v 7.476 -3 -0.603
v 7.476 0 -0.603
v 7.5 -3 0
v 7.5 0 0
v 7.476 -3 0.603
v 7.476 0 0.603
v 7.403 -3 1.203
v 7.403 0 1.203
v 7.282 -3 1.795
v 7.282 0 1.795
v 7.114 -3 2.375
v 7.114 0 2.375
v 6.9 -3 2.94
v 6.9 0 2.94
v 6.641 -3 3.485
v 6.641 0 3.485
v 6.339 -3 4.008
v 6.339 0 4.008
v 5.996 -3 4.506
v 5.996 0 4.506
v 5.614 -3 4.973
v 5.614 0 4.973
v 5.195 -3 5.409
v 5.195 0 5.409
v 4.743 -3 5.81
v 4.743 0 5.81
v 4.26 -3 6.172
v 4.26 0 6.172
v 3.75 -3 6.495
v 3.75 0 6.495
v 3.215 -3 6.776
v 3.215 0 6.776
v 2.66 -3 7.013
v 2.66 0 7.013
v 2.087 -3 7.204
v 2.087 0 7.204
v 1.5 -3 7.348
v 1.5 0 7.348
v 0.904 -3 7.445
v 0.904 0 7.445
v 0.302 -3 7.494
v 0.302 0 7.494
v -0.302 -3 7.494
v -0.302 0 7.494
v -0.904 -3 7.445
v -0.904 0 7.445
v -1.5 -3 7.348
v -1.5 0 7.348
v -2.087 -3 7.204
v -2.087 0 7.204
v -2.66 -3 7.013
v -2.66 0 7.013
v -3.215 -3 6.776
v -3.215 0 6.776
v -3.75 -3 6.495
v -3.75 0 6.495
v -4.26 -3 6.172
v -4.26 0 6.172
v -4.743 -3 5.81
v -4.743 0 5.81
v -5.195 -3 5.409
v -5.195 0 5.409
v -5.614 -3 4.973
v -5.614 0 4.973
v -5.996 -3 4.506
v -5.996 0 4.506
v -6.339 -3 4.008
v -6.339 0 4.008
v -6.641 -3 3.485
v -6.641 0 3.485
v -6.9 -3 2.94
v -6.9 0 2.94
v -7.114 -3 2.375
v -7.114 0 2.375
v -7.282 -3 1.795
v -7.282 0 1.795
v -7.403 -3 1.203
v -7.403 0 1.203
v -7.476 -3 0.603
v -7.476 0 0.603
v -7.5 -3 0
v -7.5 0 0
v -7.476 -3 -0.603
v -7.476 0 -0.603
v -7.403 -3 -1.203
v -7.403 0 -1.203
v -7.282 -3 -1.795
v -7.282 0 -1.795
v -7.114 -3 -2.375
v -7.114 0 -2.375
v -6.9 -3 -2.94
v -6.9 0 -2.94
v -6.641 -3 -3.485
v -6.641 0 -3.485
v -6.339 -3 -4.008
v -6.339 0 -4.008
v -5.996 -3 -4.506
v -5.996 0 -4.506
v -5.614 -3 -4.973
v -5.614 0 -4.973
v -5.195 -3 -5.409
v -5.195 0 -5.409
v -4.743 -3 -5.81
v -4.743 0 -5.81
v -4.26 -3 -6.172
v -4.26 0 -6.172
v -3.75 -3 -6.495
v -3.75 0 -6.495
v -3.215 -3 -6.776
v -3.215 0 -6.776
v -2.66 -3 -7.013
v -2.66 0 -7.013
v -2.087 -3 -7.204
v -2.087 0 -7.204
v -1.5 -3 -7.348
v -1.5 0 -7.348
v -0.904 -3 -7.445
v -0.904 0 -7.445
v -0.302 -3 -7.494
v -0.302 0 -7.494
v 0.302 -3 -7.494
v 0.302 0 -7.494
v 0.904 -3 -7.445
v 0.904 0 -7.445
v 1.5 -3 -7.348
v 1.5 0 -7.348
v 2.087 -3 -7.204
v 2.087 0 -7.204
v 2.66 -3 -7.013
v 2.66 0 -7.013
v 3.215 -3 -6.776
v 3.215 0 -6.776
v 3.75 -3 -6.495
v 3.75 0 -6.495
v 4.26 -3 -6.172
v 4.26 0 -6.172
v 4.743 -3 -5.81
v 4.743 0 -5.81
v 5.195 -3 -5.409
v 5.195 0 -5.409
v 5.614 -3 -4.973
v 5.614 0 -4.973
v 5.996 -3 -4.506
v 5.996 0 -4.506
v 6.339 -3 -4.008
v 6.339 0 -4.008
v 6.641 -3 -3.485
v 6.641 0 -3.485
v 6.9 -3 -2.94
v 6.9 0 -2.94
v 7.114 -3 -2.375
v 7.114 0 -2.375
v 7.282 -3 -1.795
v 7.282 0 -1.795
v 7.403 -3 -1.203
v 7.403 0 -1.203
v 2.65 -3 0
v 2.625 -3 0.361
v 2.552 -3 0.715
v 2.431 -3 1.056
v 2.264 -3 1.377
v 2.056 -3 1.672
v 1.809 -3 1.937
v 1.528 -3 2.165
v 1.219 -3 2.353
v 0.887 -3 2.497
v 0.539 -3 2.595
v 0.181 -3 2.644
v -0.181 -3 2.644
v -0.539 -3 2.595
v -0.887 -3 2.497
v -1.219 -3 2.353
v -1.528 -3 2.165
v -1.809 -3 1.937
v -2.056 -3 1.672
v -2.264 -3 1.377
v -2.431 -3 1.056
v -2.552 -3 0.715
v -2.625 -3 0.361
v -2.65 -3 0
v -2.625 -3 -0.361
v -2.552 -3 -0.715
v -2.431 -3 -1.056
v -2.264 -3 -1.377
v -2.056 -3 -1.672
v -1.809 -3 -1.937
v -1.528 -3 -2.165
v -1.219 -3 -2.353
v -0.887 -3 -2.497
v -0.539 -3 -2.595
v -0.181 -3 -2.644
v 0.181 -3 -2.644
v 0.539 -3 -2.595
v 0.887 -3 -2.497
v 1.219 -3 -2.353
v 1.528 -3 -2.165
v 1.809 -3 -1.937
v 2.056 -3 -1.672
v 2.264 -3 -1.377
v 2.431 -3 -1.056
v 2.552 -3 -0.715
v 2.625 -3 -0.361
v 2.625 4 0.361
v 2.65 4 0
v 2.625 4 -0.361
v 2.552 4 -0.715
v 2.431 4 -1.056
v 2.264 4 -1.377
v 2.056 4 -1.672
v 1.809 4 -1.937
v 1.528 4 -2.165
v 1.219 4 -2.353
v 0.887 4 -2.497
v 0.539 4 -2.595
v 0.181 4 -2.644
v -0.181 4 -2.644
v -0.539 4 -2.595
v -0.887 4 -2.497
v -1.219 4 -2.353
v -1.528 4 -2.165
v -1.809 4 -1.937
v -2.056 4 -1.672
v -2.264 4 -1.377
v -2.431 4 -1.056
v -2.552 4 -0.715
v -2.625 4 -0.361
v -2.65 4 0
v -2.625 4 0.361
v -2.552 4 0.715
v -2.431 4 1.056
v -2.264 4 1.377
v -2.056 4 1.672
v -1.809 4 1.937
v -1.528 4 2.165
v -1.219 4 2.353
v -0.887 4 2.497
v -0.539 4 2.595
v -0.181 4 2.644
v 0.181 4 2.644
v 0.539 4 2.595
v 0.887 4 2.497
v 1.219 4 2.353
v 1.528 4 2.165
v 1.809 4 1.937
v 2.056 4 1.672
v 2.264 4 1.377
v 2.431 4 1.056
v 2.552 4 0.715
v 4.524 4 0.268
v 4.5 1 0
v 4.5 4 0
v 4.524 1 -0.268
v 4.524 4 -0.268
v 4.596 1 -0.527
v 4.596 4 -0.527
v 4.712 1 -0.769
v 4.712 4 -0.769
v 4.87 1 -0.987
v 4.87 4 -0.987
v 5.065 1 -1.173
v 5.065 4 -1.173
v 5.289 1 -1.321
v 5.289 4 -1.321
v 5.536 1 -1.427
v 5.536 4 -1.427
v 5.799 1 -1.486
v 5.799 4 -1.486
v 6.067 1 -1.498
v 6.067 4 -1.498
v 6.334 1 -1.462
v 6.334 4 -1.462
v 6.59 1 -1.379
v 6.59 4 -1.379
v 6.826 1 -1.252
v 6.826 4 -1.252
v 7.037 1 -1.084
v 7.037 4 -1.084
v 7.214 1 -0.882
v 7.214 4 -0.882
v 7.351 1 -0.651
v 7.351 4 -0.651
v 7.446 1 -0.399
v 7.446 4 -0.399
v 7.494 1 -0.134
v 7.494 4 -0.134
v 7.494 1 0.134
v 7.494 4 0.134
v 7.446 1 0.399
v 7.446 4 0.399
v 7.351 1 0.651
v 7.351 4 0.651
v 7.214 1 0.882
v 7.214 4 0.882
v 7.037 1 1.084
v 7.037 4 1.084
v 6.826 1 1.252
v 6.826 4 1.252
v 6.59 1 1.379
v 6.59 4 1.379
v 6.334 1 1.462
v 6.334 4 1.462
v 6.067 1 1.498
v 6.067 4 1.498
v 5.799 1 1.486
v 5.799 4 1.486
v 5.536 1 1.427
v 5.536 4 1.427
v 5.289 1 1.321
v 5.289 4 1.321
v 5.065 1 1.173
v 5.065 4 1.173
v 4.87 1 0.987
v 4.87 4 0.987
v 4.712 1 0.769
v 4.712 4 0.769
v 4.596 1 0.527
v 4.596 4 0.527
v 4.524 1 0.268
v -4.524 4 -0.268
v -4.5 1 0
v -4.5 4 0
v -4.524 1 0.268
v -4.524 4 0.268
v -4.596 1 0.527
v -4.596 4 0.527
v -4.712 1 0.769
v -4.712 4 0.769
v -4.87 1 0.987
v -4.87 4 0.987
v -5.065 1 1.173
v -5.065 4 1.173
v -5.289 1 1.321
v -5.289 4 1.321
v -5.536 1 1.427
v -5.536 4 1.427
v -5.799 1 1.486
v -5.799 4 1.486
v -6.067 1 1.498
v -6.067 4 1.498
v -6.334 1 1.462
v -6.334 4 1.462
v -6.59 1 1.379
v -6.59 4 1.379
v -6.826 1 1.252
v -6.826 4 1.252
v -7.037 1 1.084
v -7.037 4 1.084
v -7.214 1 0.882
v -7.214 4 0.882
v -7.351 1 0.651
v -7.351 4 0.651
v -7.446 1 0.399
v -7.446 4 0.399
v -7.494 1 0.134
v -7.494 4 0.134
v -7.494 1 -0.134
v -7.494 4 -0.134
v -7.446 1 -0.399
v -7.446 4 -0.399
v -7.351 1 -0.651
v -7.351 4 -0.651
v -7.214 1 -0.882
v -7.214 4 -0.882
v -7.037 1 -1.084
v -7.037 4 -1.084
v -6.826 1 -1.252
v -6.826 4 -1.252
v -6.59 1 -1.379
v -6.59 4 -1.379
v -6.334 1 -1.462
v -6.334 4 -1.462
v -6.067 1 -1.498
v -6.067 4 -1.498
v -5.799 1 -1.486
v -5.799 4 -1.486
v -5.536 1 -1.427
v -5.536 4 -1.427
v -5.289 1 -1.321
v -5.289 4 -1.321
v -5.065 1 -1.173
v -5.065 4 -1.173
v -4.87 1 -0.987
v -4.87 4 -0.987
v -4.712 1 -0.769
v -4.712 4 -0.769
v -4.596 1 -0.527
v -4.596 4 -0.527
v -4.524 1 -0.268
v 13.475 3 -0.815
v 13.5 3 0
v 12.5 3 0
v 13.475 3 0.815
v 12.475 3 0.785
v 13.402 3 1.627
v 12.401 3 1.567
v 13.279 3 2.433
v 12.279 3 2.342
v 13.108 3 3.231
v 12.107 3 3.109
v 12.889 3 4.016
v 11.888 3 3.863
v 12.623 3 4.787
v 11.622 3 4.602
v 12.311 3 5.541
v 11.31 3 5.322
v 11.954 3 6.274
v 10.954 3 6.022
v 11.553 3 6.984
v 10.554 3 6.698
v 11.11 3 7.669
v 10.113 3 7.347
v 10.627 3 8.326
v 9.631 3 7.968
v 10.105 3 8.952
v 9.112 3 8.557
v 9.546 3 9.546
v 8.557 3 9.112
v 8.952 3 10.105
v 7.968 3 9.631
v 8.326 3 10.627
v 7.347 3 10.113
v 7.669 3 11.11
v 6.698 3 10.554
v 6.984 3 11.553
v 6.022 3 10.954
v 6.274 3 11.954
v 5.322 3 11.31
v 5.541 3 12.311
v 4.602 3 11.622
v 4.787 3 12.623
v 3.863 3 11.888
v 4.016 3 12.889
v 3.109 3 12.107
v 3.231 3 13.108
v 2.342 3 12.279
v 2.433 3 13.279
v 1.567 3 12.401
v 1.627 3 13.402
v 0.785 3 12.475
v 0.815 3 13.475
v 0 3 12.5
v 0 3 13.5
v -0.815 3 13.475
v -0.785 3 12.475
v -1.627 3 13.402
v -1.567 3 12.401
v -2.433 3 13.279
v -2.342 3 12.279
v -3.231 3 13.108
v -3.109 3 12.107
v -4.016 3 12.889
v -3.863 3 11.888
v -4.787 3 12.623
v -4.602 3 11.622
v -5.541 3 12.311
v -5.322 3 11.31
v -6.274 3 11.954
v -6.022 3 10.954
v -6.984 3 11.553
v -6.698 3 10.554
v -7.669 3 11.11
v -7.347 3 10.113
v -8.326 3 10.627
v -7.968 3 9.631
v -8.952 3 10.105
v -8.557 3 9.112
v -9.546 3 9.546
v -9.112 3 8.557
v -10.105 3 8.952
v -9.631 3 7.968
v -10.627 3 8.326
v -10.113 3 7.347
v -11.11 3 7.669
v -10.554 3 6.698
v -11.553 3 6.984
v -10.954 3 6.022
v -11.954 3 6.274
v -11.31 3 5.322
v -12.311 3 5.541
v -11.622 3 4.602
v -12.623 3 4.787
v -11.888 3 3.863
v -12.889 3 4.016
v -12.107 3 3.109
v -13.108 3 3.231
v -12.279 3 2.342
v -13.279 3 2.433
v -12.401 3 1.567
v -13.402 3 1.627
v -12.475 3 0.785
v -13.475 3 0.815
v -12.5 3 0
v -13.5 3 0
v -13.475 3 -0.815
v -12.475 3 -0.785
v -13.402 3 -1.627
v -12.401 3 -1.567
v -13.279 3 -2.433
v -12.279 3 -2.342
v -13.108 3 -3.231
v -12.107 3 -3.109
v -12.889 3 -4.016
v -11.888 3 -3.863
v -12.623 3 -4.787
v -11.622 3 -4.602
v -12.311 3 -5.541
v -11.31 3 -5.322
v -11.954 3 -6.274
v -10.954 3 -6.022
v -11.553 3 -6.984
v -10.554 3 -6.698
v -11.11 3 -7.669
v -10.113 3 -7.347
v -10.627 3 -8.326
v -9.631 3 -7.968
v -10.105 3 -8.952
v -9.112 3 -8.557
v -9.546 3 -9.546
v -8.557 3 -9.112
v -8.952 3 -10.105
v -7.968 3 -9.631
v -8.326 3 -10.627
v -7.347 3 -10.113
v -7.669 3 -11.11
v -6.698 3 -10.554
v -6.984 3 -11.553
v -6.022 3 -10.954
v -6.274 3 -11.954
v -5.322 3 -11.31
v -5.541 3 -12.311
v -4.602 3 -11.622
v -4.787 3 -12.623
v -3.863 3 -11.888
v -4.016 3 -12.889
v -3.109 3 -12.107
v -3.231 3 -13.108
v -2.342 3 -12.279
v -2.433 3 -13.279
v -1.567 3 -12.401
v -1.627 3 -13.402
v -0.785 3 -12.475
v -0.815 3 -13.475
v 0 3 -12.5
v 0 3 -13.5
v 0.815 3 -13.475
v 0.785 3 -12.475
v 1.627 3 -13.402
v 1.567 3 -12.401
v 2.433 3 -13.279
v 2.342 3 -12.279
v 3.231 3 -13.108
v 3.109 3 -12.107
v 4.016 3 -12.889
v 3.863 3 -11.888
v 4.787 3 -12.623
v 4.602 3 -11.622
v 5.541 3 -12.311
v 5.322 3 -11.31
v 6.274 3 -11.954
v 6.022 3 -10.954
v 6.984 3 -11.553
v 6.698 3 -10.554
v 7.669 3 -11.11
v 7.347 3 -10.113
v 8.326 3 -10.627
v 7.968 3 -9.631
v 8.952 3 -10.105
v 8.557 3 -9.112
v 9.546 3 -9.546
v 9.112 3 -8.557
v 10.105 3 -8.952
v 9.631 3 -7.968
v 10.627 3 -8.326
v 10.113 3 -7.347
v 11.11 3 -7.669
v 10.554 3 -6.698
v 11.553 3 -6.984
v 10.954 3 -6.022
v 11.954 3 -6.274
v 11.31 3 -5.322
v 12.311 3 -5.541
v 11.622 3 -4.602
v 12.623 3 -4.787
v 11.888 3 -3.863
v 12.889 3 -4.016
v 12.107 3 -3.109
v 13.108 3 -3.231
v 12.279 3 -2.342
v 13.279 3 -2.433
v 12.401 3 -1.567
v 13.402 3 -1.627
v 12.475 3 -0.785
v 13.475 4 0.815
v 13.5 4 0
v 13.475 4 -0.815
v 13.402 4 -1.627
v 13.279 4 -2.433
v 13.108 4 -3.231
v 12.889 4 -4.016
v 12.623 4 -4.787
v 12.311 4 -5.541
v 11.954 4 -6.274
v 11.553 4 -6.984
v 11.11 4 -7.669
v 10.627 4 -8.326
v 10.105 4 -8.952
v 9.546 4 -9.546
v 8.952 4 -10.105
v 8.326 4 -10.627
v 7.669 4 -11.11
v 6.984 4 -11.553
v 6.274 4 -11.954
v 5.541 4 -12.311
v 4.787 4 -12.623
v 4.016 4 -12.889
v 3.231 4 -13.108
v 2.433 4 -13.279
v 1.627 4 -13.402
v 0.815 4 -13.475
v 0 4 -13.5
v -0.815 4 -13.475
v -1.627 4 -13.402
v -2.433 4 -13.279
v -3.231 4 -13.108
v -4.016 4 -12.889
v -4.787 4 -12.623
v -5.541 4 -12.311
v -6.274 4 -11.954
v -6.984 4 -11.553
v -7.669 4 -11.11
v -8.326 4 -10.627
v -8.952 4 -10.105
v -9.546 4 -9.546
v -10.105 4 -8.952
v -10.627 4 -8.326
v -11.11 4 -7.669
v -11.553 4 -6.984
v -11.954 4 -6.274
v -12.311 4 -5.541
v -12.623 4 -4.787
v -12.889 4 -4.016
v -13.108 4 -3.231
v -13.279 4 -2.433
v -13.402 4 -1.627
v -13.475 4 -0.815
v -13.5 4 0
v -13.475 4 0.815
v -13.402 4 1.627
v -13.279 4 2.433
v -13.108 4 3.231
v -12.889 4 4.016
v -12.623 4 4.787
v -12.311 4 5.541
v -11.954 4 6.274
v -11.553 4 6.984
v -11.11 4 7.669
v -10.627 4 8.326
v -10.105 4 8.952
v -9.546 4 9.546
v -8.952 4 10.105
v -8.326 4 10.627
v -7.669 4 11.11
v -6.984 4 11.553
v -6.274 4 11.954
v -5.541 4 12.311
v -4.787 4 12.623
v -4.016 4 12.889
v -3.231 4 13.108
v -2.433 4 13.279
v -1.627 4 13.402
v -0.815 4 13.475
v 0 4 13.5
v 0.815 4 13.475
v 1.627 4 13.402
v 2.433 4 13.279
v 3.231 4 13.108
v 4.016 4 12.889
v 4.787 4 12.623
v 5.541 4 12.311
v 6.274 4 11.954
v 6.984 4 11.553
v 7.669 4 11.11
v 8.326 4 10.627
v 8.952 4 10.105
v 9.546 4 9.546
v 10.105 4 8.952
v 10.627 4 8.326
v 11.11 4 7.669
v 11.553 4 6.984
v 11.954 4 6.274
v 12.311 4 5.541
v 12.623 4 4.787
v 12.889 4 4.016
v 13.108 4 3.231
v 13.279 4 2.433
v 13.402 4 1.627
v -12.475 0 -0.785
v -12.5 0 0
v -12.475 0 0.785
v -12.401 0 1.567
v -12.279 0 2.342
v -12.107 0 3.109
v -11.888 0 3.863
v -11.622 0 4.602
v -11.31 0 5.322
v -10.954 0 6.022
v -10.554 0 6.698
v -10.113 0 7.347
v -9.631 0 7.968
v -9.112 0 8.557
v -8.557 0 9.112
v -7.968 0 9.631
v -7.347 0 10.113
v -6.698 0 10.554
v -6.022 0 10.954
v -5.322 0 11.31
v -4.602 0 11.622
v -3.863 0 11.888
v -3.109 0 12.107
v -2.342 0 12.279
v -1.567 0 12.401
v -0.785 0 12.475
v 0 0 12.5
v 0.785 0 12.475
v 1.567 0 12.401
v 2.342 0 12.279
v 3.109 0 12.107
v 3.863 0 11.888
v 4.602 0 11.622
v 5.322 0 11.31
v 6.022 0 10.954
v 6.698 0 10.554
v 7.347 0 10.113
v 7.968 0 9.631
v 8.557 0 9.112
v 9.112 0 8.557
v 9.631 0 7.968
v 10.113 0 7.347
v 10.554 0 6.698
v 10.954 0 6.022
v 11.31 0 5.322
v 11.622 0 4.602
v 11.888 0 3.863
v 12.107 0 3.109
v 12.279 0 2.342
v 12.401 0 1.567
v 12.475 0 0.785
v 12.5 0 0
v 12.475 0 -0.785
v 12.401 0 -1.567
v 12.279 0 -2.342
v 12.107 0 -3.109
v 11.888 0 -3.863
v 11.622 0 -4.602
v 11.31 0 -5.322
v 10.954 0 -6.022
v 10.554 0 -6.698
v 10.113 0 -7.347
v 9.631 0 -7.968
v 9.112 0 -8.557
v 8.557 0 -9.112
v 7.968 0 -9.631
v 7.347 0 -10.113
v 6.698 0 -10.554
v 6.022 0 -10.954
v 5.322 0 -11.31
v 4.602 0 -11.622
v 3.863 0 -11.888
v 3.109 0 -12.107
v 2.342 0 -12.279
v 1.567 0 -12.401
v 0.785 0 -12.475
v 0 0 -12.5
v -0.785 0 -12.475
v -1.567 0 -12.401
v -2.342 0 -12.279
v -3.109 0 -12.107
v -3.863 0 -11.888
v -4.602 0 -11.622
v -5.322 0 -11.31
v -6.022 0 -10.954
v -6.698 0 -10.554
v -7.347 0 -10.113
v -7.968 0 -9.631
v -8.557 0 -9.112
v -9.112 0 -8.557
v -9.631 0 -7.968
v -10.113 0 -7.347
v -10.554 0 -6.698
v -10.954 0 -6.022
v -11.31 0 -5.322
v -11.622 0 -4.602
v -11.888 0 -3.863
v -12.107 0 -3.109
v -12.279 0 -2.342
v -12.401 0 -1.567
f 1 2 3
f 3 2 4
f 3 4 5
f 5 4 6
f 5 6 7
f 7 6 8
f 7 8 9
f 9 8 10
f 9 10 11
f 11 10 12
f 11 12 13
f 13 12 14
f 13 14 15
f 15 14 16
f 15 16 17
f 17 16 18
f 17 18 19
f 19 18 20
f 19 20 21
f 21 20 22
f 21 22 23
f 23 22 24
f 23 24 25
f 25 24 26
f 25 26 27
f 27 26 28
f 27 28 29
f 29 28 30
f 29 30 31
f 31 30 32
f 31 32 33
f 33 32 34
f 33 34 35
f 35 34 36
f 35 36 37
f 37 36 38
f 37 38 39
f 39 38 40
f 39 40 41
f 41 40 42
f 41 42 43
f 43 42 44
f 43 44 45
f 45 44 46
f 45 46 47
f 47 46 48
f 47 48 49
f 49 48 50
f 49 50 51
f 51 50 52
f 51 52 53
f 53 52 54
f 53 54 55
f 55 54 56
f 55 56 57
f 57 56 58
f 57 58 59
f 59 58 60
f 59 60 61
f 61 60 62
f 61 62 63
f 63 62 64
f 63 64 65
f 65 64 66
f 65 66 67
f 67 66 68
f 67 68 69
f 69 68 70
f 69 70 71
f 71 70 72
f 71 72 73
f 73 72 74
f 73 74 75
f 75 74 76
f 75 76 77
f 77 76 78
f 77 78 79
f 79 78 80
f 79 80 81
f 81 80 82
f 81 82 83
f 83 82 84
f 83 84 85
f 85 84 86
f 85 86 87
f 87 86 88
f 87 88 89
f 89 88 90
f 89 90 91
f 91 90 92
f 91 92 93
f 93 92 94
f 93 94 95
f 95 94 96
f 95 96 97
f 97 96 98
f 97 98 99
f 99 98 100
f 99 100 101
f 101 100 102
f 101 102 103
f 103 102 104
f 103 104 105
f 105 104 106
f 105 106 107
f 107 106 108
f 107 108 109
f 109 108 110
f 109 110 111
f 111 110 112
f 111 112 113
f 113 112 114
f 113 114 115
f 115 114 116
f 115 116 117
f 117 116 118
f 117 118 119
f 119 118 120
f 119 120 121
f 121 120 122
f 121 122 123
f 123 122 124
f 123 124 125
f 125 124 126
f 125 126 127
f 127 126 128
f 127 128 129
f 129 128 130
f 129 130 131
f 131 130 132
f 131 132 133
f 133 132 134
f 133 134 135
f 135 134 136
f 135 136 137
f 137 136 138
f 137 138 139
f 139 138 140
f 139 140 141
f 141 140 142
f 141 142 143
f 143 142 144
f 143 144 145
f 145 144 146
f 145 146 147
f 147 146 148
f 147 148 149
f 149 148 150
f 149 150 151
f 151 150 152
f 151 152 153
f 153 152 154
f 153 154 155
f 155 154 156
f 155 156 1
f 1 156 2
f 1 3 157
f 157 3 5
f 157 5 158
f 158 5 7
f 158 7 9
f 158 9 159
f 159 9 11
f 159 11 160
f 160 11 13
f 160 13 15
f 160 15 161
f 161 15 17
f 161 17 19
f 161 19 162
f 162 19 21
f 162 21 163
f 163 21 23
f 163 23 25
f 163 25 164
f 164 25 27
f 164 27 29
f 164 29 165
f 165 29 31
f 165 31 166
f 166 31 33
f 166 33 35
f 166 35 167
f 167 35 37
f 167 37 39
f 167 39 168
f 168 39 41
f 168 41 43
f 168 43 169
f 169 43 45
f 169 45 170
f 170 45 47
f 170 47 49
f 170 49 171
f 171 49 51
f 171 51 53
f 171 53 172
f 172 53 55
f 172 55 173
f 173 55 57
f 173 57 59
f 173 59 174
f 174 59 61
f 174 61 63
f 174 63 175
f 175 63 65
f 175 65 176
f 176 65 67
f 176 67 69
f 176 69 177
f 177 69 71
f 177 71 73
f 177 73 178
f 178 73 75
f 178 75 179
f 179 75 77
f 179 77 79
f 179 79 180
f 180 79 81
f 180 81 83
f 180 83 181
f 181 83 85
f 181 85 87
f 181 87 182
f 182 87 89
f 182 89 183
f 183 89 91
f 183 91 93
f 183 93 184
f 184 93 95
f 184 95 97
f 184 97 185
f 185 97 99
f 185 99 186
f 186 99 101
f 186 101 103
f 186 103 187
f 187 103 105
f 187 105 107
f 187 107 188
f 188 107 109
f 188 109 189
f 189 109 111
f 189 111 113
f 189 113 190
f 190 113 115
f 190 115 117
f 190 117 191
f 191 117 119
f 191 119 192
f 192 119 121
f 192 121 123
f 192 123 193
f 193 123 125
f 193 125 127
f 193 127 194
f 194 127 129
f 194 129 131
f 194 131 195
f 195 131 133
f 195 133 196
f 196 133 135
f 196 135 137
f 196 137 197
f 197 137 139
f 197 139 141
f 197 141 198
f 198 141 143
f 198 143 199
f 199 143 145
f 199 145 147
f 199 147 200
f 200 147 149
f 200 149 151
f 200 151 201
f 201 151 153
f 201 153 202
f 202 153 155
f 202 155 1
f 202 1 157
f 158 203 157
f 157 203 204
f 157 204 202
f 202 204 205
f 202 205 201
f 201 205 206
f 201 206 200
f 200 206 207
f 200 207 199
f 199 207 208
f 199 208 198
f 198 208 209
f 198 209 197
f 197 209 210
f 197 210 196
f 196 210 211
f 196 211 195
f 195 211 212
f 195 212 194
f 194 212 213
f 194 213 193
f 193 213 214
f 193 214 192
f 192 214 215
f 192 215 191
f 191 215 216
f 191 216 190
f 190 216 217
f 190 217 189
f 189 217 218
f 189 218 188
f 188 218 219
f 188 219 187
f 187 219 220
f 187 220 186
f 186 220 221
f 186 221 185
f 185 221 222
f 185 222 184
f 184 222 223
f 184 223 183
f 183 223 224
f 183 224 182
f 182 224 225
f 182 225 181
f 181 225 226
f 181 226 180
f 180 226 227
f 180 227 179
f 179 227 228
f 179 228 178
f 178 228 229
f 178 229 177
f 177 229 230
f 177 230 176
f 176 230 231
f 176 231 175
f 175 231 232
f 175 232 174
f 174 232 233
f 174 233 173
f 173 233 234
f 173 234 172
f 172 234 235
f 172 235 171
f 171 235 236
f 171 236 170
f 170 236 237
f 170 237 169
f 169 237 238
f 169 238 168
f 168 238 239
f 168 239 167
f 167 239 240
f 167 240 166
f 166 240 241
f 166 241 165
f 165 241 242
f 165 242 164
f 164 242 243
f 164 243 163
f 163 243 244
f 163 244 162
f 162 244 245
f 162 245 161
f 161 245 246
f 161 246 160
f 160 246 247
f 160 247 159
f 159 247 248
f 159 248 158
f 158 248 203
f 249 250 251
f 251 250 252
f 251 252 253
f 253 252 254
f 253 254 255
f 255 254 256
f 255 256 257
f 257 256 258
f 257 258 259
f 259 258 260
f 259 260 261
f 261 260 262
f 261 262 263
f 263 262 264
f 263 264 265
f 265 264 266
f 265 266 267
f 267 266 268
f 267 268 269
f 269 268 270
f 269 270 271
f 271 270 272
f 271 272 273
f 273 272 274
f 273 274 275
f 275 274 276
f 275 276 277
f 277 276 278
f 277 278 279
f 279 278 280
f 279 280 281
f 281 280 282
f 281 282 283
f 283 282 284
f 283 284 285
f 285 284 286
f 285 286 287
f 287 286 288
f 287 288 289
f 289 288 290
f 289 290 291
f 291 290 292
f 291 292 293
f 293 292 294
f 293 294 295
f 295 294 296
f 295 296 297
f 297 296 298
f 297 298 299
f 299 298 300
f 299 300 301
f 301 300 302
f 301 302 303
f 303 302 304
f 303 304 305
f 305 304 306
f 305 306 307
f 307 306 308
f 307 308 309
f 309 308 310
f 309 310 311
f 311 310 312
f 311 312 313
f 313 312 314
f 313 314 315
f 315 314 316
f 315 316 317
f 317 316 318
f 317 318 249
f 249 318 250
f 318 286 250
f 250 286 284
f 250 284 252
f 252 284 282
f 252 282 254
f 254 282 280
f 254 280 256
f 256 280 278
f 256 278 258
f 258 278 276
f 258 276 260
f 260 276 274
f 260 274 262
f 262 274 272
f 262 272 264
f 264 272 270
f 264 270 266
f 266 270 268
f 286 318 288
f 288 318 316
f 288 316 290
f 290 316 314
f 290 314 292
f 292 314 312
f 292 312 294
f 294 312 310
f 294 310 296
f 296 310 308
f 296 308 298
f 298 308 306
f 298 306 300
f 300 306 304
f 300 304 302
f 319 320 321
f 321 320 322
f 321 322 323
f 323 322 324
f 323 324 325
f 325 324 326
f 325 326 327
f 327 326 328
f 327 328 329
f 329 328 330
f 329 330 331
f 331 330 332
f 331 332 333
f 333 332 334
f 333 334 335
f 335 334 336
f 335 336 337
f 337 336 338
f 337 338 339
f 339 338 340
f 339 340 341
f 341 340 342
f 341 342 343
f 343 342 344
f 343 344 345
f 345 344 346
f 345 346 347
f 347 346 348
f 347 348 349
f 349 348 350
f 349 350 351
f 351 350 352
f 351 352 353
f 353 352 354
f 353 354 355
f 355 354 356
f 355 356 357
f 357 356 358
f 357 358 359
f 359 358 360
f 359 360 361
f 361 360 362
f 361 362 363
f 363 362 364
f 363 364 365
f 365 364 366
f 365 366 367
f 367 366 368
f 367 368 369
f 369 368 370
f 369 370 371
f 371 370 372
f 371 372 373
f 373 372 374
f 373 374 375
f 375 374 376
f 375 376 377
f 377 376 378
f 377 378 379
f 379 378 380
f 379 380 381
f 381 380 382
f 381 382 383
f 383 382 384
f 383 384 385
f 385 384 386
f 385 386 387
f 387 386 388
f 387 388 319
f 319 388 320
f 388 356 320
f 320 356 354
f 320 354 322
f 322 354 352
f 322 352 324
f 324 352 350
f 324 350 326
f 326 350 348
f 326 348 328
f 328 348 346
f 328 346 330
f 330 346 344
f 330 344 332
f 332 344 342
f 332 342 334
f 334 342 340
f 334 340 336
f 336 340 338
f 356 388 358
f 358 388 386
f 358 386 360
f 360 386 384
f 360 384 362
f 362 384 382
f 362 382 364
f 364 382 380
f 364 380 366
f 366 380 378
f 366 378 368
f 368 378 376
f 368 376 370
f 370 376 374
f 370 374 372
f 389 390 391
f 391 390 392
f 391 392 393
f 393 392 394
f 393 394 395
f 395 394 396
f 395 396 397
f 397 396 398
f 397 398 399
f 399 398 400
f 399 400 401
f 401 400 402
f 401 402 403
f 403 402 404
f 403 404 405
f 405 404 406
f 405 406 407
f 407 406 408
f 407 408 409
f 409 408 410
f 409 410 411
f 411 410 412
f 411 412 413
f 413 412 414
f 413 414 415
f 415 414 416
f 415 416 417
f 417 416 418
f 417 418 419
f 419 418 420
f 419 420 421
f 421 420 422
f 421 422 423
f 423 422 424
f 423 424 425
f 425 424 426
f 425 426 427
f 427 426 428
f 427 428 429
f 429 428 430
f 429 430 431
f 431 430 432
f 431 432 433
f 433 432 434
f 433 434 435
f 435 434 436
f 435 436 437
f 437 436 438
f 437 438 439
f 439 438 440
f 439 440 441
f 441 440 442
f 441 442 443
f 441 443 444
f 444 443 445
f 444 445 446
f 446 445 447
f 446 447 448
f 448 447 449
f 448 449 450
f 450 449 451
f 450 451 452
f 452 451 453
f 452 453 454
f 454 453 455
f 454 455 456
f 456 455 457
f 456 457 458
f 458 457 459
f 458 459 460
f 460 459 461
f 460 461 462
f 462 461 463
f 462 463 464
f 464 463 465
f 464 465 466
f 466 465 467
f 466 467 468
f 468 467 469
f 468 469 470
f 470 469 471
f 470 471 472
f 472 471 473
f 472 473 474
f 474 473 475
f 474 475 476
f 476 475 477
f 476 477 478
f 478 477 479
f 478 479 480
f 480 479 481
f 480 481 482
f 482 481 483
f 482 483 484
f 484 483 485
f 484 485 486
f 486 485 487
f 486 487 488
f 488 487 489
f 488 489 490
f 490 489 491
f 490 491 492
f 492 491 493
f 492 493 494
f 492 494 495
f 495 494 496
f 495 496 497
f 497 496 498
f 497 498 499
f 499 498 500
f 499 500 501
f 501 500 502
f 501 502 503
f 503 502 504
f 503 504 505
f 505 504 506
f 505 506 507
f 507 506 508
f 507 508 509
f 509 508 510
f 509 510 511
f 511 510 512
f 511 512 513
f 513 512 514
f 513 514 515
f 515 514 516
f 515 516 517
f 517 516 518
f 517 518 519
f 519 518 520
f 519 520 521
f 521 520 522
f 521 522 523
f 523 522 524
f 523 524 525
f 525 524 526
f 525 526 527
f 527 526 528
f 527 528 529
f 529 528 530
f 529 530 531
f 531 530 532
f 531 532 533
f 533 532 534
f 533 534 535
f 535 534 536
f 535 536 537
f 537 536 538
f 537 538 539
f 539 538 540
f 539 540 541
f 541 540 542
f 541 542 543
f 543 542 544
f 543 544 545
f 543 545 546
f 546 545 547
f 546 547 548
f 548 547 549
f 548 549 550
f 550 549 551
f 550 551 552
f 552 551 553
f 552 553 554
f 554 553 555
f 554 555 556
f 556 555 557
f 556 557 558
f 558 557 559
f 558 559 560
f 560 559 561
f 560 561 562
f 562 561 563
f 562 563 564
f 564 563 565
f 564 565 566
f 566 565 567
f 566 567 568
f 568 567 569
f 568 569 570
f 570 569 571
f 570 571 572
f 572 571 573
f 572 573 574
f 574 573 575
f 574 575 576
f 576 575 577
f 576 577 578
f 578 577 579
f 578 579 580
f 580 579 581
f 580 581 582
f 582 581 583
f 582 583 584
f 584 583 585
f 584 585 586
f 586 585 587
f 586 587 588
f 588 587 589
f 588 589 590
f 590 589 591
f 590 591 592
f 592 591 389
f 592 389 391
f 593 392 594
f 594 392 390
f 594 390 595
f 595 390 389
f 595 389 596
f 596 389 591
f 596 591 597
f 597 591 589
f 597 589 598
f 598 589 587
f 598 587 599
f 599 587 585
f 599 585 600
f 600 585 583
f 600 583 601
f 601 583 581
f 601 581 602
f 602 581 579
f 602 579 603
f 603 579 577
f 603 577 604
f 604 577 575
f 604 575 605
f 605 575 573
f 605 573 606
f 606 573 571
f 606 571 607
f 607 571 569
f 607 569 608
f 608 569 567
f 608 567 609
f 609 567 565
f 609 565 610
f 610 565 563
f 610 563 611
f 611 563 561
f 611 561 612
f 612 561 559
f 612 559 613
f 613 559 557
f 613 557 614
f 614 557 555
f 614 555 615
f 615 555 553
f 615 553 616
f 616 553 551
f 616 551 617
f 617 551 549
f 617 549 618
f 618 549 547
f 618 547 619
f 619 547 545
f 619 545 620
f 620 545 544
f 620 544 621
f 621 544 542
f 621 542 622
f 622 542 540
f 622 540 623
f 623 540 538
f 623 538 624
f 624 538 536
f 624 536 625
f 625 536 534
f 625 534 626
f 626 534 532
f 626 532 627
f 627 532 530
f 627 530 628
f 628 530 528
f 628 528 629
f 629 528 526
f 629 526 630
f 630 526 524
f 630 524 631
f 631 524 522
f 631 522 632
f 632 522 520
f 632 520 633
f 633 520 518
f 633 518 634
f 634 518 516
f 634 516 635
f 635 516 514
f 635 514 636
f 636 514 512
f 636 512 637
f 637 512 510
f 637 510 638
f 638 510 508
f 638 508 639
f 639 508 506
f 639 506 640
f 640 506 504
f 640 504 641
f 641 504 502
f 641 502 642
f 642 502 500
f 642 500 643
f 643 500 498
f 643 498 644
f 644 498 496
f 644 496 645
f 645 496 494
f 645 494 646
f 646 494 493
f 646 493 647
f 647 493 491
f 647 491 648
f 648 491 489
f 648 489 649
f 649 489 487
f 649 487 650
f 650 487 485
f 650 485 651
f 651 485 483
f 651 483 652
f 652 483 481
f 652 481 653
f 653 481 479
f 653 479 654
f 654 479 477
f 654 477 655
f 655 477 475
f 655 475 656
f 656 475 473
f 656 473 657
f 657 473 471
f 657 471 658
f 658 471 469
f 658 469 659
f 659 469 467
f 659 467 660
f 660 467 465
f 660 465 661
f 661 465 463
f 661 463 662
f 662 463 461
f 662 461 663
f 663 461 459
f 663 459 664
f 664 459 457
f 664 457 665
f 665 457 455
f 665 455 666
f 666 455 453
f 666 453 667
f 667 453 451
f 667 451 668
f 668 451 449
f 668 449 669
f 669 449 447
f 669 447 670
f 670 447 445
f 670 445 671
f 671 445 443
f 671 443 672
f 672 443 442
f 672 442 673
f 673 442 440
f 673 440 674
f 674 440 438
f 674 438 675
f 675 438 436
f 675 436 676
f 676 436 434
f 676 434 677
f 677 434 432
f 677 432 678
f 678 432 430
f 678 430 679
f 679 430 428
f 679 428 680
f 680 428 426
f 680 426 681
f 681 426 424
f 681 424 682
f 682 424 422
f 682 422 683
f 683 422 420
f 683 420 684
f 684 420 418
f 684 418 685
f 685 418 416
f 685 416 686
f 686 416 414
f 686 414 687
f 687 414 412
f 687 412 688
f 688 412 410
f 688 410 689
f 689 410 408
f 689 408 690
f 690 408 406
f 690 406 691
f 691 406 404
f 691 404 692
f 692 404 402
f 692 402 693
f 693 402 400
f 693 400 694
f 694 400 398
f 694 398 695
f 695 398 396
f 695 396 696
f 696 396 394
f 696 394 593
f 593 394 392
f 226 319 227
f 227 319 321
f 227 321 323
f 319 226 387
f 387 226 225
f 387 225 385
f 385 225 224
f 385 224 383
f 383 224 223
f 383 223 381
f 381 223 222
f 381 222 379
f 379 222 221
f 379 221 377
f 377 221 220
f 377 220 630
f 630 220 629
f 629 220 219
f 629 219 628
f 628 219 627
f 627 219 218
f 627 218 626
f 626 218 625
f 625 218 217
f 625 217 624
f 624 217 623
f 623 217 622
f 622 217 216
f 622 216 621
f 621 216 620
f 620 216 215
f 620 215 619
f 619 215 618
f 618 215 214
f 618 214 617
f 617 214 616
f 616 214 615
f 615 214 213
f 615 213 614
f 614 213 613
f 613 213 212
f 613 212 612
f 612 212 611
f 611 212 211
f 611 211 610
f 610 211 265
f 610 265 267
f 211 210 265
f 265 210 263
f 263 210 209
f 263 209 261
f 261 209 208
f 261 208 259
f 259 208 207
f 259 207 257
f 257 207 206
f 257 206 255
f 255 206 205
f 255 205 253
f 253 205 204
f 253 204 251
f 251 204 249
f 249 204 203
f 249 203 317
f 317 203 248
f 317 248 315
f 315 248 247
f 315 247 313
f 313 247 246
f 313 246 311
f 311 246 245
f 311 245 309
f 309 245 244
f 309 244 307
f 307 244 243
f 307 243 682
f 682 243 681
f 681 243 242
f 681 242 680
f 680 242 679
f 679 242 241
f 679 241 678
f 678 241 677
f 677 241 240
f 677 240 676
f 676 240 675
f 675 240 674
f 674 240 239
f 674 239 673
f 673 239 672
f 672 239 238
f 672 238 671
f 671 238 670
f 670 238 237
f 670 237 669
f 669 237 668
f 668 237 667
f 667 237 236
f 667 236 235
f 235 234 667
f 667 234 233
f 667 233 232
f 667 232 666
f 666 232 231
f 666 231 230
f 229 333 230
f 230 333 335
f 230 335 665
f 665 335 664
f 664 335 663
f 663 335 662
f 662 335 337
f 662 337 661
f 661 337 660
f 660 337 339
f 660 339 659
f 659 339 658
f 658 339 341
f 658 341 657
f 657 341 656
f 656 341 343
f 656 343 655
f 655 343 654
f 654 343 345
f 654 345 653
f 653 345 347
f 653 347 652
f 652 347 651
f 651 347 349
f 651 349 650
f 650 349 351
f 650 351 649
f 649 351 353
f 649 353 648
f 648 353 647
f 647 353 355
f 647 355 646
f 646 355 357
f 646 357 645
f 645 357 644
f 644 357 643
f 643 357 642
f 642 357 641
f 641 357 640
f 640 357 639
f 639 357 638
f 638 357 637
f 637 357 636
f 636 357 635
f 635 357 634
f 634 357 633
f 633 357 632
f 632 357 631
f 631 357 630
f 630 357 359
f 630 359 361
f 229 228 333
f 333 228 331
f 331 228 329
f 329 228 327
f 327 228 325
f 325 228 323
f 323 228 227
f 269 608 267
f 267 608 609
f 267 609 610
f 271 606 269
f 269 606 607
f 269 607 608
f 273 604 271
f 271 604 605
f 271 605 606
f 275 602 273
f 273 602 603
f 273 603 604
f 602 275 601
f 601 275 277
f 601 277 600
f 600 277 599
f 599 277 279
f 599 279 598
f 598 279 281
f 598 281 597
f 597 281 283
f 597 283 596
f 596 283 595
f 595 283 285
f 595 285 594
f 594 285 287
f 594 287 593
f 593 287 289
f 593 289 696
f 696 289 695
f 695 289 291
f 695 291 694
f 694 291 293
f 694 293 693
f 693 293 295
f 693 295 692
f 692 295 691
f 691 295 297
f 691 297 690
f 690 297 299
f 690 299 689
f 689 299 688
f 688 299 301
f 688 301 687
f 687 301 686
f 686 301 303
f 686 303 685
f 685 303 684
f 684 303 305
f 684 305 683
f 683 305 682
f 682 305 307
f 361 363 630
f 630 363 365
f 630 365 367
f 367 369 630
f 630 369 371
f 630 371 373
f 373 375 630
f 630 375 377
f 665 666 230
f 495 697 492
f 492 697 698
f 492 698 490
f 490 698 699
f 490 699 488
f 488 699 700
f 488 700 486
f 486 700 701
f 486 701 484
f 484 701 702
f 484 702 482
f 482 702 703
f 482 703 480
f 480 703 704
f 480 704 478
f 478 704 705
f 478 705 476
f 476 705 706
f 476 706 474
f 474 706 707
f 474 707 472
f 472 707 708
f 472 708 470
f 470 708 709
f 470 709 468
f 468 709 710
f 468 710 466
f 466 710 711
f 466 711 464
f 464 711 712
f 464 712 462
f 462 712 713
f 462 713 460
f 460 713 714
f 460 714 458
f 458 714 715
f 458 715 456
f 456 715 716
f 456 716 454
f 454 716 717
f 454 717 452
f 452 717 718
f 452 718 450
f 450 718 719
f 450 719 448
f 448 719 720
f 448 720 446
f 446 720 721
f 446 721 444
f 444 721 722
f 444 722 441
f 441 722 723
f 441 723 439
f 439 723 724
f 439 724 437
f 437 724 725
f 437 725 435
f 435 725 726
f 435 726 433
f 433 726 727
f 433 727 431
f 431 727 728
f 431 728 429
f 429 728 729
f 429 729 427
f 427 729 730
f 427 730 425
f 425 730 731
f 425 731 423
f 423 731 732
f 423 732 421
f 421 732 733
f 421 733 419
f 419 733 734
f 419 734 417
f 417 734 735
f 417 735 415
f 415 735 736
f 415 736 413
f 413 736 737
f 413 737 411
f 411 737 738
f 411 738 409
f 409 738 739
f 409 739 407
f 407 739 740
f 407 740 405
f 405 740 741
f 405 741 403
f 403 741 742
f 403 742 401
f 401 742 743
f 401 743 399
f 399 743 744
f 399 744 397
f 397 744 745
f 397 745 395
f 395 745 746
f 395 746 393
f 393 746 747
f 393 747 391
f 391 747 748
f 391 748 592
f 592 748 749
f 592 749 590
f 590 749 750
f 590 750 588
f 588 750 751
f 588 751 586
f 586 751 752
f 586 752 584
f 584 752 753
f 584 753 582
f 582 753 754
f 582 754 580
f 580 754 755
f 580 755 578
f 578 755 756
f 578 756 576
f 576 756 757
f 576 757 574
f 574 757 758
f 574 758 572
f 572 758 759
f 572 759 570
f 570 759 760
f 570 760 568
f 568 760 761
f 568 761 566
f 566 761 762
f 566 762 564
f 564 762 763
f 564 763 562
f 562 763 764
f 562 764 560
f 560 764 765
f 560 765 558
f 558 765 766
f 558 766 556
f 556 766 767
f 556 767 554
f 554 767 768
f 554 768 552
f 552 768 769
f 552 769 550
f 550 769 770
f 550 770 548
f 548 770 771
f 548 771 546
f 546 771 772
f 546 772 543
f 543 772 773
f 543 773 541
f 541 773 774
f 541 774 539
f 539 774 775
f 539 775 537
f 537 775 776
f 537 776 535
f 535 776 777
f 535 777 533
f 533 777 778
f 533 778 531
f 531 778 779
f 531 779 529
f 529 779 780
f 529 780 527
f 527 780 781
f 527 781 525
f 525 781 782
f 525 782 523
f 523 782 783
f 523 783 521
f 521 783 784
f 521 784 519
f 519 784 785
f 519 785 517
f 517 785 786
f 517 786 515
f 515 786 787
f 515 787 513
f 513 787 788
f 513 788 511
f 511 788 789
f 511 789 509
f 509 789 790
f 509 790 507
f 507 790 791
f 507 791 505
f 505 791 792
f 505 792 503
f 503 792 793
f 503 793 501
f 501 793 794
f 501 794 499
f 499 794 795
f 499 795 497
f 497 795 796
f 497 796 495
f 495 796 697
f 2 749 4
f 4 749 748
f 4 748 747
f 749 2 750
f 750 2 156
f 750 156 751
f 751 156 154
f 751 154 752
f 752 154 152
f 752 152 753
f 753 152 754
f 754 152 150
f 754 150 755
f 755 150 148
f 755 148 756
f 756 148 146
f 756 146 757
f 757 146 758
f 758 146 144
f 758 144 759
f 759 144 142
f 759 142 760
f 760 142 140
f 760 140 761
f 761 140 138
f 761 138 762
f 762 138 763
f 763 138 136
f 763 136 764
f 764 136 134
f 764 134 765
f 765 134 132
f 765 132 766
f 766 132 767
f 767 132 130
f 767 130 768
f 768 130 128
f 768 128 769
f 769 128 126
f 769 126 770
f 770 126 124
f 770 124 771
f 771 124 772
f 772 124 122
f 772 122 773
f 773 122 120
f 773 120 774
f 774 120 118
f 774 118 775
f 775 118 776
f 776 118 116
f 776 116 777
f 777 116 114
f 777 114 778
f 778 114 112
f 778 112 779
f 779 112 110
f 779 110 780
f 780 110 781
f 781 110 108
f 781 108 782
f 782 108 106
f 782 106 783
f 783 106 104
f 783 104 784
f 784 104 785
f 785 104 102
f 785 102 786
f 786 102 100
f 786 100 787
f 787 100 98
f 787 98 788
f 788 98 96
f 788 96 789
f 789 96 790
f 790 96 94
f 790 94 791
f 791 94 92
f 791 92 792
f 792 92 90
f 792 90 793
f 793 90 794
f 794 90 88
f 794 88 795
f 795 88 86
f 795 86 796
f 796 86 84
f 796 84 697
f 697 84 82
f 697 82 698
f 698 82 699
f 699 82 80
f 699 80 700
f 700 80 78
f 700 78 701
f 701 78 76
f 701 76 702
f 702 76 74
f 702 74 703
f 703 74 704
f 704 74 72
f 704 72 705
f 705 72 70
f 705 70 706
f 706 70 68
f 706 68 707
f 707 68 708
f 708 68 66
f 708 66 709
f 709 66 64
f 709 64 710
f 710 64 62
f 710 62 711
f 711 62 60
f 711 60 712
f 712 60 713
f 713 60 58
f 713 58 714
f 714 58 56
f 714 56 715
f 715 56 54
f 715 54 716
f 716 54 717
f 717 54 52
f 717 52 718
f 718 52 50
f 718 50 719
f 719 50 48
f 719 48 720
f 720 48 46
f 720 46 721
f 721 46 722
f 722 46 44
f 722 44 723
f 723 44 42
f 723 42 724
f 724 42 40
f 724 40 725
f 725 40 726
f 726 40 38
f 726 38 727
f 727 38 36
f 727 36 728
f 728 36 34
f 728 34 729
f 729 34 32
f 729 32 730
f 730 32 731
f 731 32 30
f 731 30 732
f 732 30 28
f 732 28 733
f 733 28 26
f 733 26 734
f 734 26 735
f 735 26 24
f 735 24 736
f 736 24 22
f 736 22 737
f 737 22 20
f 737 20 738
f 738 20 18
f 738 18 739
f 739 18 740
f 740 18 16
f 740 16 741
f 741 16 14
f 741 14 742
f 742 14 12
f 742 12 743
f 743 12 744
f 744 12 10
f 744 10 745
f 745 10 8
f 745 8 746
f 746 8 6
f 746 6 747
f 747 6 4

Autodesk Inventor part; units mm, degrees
ref_plane "YZ Plane" through (0, 0, 0) normal (1, 0, 0) x (0, 1, 0)
ref_plane "XZ Plane" through (0, 0, 0) normal (0, 1, 0) x (-1, 0, 0)
ref_plane "XY Plane" through (0, 0, 0) normal (0, 0, 1) x (1, 0, 0)
sketch "Szkic1" plane through (0, 0, 0) normal (0, 1, 0) x (-1, 0, 0)
  circle A0 centre (0, 0) radius 12.5
  dimension "d0" = 25
extrude "Wyciągnięcie proste1" add sketch "Szkic1" along normal blind 3
sketch "Szkic6" plane through (0, 3, 0) normal (0, 1, 0) x (1, 0, 0)
  circle A0 centre (0, 0) radius 13.5
  dimension "d13" = 27
extrude "Wyciągnięcie proste5" add sketch "Szkic6" along normal blind 1
sketch "Szkic7" plane through (0, 4, 0) normal (0, 1, 0) x (1, 0, 0)
  point P0 (0, 0)
  point P1 (-6, 0)
  dimension "d16" = 6
hole "Otwór1" at (-6, 4, 0) direction (0, -1, 0) diameter 3 depth 3
pattern_circular "Szyk kołowy1" count 2 over 360 about axis through (0, 3, 0) along (0, 1, 0) of "Otwór1"
sketch "Szkic8" plane through (0, 0, 0) normal (0, -1, 0) x (1, 0, 0)
  circle A0 centre (0, 0) radius 2.65
  dimension "d35" = 5.3
extrude "Wyciągnięcie proste6" cut sketch "Szkic8" against normal through all
sketch "Sketch10" plane through (0, 0, 0) normal (0, -1, 0) x (1, 0, 0)
  circle A0 centre (0, 0) radius 2.65
  circle A1 centre (0, 0) radius 7.5
  dimension "d36" = 15
extrude "Extrusion8" add sketch "Sketch10" along normal blind 3
properties part number "_Drukowanie 3D"
